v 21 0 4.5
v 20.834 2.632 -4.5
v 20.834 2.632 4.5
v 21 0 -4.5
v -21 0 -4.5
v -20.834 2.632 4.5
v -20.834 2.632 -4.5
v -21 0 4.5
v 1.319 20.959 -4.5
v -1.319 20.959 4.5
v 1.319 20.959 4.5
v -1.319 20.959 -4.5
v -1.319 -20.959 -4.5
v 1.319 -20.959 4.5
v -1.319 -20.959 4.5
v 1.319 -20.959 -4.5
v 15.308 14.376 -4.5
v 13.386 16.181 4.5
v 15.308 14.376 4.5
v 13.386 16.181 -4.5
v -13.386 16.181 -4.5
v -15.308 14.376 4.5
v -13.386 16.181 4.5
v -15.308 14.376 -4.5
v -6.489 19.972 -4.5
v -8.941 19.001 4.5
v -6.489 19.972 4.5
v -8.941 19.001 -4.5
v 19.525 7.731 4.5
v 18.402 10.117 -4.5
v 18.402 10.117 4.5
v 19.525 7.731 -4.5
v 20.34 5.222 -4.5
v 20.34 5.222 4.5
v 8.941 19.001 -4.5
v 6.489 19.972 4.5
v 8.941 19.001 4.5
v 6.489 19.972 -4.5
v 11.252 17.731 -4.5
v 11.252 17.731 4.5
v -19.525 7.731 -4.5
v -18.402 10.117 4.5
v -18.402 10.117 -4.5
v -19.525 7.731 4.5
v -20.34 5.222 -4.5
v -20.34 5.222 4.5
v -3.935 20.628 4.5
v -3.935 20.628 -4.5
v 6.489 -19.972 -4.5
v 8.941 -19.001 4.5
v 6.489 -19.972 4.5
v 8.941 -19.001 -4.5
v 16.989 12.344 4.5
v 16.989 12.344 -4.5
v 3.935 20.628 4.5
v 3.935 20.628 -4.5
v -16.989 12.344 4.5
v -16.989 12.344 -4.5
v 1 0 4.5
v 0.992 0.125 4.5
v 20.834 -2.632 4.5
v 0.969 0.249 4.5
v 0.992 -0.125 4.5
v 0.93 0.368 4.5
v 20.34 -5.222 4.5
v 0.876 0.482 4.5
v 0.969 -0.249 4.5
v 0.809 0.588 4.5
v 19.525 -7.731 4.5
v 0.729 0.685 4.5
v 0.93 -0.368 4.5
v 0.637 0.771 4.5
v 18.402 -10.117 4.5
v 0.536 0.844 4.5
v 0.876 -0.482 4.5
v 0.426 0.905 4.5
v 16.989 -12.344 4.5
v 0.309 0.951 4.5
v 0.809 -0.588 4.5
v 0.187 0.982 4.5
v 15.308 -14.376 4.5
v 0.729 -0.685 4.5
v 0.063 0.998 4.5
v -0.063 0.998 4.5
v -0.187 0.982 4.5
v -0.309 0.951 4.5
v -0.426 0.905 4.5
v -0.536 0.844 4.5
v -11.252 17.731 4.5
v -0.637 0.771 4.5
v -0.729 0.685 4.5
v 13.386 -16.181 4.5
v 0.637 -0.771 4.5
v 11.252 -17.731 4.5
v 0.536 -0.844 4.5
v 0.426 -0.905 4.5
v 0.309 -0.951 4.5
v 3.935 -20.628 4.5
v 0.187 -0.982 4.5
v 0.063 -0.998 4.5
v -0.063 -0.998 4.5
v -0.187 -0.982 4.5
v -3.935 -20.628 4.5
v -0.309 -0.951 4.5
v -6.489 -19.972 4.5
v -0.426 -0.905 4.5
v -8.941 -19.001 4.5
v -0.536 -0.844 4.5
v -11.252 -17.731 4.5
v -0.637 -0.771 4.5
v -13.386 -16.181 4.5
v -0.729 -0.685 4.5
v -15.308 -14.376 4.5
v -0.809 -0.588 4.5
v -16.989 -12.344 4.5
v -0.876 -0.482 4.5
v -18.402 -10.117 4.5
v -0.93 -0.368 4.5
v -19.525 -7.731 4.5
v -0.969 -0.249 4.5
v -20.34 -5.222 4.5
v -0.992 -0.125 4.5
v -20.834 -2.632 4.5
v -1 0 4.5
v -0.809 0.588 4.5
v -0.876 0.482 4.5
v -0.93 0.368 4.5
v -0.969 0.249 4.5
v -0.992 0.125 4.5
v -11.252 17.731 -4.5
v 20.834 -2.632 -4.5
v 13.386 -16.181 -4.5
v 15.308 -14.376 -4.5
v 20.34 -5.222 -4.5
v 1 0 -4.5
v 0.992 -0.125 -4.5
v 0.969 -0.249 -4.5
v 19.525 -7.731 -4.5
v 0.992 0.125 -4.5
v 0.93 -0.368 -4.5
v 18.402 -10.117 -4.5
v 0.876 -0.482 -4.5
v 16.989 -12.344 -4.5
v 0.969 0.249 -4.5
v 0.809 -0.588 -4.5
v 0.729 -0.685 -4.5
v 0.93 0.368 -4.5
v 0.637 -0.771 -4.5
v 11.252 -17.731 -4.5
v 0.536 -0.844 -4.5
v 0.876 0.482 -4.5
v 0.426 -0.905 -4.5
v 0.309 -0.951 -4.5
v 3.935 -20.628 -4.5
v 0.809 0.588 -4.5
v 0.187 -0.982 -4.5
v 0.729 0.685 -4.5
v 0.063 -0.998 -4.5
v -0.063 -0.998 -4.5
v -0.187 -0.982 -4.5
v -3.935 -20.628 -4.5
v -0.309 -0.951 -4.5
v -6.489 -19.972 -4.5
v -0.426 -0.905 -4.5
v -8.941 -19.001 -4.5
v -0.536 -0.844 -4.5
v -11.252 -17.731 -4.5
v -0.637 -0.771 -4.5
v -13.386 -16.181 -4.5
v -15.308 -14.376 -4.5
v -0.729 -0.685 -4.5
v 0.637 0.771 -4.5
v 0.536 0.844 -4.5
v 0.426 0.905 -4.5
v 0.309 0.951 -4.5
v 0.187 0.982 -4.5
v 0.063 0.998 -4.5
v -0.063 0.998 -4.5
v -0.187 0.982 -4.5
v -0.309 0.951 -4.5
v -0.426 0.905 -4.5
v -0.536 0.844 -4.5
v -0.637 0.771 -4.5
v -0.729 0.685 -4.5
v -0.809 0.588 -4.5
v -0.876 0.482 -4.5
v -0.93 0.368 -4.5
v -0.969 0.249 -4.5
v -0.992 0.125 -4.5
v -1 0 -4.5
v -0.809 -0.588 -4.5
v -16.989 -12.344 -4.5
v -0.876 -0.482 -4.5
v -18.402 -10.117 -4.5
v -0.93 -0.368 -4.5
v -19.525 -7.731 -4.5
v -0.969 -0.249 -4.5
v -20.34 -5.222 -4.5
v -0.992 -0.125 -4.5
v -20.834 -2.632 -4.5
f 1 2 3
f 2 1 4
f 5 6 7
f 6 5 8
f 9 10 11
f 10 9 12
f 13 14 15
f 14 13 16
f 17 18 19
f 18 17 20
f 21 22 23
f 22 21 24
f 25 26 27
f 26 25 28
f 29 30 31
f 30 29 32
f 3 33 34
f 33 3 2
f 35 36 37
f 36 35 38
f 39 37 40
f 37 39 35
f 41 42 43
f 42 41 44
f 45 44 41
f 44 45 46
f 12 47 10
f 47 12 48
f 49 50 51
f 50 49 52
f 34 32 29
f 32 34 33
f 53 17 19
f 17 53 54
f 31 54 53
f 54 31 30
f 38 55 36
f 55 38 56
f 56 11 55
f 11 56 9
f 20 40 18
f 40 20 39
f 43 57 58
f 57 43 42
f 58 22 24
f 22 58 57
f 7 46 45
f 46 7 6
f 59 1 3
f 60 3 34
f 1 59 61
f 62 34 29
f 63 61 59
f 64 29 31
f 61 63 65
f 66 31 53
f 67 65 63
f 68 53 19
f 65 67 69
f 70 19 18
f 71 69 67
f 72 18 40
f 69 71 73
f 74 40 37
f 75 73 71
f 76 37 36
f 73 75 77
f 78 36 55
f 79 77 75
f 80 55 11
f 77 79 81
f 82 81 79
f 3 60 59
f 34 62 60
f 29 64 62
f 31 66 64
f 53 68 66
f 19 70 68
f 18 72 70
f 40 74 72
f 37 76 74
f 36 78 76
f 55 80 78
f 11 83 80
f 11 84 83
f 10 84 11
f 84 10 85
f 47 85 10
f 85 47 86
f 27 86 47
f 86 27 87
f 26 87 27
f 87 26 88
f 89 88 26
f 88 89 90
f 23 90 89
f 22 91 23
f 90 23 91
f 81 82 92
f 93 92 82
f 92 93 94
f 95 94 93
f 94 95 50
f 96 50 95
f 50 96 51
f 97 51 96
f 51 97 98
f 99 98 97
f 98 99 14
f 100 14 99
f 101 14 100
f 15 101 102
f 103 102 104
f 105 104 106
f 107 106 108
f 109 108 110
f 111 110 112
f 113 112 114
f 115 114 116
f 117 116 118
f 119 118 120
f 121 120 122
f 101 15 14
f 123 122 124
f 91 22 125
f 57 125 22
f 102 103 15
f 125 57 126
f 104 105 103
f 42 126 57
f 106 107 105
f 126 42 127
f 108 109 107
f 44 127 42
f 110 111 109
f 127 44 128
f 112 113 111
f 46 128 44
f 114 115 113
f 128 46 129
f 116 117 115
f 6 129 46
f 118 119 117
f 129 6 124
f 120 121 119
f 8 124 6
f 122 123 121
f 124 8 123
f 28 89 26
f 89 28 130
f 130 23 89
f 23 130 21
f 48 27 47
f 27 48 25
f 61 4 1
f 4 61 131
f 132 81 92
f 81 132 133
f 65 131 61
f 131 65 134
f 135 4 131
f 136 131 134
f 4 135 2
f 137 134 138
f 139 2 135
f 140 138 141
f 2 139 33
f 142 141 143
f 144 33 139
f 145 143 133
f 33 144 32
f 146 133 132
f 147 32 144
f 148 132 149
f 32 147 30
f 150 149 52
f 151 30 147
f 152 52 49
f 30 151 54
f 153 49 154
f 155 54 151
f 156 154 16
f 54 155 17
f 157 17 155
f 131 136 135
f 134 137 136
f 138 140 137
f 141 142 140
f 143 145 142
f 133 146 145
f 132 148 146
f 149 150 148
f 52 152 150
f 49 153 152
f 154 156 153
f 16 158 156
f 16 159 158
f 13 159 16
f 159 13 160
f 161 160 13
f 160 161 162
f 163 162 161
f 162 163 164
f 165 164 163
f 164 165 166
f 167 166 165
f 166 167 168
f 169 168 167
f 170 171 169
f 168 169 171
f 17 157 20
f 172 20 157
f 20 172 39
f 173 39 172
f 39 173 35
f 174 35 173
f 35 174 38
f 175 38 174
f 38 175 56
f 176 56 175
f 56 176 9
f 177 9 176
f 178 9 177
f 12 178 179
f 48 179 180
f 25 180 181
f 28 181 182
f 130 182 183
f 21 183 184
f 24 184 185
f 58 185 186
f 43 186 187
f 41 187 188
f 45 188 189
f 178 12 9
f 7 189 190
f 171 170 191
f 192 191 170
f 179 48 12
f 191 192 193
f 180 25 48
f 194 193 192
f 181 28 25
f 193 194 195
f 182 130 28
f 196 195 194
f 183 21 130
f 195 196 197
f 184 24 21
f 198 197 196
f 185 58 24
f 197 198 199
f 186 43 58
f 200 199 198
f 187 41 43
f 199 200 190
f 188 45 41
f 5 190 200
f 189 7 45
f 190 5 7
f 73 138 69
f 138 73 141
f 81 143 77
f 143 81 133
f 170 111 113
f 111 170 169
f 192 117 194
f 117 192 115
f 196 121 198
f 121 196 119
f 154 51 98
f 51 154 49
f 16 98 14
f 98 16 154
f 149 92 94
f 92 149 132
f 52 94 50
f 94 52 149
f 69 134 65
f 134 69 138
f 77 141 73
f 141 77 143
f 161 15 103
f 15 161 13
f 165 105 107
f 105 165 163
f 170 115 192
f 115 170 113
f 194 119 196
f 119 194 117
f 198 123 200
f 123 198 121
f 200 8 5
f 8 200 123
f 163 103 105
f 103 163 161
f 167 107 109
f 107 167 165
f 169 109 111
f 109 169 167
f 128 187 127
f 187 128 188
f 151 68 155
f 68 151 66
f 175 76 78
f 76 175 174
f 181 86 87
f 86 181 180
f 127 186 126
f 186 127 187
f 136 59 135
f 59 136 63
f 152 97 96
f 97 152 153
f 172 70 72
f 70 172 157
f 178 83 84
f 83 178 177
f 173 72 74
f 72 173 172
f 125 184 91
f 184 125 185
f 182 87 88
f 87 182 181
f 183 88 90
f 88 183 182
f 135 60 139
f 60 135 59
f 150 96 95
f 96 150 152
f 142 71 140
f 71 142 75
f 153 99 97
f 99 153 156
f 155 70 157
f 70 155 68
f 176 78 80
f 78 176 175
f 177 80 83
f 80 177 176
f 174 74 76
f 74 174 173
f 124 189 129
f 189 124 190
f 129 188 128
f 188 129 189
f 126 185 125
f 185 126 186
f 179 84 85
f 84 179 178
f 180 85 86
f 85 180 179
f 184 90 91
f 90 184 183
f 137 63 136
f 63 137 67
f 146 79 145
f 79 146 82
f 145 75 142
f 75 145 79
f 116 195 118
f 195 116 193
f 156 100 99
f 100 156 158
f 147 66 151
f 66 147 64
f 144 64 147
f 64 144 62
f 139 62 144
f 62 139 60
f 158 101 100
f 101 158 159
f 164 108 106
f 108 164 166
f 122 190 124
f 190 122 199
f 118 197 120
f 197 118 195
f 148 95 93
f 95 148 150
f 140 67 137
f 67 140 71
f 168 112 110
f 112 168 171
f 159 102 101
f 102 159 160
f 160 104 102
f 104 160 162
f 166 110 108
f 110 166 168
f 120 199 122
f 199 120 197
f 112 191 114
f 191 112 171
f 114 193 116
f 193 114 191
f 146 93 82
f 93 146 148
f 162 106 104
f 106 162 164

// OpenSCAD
$fn = 50;


difference() {
	union() {
		translate(v = [0, 0, -4.5000000000]) {
			cylinder(h = 9, r = 21.0000000000);
		}
	}
	union() {
		translate(v = [0, 0, -100.0000000000]) {
			cylinder(h = 200, r = 1.0000000000);
		}
	}
}
